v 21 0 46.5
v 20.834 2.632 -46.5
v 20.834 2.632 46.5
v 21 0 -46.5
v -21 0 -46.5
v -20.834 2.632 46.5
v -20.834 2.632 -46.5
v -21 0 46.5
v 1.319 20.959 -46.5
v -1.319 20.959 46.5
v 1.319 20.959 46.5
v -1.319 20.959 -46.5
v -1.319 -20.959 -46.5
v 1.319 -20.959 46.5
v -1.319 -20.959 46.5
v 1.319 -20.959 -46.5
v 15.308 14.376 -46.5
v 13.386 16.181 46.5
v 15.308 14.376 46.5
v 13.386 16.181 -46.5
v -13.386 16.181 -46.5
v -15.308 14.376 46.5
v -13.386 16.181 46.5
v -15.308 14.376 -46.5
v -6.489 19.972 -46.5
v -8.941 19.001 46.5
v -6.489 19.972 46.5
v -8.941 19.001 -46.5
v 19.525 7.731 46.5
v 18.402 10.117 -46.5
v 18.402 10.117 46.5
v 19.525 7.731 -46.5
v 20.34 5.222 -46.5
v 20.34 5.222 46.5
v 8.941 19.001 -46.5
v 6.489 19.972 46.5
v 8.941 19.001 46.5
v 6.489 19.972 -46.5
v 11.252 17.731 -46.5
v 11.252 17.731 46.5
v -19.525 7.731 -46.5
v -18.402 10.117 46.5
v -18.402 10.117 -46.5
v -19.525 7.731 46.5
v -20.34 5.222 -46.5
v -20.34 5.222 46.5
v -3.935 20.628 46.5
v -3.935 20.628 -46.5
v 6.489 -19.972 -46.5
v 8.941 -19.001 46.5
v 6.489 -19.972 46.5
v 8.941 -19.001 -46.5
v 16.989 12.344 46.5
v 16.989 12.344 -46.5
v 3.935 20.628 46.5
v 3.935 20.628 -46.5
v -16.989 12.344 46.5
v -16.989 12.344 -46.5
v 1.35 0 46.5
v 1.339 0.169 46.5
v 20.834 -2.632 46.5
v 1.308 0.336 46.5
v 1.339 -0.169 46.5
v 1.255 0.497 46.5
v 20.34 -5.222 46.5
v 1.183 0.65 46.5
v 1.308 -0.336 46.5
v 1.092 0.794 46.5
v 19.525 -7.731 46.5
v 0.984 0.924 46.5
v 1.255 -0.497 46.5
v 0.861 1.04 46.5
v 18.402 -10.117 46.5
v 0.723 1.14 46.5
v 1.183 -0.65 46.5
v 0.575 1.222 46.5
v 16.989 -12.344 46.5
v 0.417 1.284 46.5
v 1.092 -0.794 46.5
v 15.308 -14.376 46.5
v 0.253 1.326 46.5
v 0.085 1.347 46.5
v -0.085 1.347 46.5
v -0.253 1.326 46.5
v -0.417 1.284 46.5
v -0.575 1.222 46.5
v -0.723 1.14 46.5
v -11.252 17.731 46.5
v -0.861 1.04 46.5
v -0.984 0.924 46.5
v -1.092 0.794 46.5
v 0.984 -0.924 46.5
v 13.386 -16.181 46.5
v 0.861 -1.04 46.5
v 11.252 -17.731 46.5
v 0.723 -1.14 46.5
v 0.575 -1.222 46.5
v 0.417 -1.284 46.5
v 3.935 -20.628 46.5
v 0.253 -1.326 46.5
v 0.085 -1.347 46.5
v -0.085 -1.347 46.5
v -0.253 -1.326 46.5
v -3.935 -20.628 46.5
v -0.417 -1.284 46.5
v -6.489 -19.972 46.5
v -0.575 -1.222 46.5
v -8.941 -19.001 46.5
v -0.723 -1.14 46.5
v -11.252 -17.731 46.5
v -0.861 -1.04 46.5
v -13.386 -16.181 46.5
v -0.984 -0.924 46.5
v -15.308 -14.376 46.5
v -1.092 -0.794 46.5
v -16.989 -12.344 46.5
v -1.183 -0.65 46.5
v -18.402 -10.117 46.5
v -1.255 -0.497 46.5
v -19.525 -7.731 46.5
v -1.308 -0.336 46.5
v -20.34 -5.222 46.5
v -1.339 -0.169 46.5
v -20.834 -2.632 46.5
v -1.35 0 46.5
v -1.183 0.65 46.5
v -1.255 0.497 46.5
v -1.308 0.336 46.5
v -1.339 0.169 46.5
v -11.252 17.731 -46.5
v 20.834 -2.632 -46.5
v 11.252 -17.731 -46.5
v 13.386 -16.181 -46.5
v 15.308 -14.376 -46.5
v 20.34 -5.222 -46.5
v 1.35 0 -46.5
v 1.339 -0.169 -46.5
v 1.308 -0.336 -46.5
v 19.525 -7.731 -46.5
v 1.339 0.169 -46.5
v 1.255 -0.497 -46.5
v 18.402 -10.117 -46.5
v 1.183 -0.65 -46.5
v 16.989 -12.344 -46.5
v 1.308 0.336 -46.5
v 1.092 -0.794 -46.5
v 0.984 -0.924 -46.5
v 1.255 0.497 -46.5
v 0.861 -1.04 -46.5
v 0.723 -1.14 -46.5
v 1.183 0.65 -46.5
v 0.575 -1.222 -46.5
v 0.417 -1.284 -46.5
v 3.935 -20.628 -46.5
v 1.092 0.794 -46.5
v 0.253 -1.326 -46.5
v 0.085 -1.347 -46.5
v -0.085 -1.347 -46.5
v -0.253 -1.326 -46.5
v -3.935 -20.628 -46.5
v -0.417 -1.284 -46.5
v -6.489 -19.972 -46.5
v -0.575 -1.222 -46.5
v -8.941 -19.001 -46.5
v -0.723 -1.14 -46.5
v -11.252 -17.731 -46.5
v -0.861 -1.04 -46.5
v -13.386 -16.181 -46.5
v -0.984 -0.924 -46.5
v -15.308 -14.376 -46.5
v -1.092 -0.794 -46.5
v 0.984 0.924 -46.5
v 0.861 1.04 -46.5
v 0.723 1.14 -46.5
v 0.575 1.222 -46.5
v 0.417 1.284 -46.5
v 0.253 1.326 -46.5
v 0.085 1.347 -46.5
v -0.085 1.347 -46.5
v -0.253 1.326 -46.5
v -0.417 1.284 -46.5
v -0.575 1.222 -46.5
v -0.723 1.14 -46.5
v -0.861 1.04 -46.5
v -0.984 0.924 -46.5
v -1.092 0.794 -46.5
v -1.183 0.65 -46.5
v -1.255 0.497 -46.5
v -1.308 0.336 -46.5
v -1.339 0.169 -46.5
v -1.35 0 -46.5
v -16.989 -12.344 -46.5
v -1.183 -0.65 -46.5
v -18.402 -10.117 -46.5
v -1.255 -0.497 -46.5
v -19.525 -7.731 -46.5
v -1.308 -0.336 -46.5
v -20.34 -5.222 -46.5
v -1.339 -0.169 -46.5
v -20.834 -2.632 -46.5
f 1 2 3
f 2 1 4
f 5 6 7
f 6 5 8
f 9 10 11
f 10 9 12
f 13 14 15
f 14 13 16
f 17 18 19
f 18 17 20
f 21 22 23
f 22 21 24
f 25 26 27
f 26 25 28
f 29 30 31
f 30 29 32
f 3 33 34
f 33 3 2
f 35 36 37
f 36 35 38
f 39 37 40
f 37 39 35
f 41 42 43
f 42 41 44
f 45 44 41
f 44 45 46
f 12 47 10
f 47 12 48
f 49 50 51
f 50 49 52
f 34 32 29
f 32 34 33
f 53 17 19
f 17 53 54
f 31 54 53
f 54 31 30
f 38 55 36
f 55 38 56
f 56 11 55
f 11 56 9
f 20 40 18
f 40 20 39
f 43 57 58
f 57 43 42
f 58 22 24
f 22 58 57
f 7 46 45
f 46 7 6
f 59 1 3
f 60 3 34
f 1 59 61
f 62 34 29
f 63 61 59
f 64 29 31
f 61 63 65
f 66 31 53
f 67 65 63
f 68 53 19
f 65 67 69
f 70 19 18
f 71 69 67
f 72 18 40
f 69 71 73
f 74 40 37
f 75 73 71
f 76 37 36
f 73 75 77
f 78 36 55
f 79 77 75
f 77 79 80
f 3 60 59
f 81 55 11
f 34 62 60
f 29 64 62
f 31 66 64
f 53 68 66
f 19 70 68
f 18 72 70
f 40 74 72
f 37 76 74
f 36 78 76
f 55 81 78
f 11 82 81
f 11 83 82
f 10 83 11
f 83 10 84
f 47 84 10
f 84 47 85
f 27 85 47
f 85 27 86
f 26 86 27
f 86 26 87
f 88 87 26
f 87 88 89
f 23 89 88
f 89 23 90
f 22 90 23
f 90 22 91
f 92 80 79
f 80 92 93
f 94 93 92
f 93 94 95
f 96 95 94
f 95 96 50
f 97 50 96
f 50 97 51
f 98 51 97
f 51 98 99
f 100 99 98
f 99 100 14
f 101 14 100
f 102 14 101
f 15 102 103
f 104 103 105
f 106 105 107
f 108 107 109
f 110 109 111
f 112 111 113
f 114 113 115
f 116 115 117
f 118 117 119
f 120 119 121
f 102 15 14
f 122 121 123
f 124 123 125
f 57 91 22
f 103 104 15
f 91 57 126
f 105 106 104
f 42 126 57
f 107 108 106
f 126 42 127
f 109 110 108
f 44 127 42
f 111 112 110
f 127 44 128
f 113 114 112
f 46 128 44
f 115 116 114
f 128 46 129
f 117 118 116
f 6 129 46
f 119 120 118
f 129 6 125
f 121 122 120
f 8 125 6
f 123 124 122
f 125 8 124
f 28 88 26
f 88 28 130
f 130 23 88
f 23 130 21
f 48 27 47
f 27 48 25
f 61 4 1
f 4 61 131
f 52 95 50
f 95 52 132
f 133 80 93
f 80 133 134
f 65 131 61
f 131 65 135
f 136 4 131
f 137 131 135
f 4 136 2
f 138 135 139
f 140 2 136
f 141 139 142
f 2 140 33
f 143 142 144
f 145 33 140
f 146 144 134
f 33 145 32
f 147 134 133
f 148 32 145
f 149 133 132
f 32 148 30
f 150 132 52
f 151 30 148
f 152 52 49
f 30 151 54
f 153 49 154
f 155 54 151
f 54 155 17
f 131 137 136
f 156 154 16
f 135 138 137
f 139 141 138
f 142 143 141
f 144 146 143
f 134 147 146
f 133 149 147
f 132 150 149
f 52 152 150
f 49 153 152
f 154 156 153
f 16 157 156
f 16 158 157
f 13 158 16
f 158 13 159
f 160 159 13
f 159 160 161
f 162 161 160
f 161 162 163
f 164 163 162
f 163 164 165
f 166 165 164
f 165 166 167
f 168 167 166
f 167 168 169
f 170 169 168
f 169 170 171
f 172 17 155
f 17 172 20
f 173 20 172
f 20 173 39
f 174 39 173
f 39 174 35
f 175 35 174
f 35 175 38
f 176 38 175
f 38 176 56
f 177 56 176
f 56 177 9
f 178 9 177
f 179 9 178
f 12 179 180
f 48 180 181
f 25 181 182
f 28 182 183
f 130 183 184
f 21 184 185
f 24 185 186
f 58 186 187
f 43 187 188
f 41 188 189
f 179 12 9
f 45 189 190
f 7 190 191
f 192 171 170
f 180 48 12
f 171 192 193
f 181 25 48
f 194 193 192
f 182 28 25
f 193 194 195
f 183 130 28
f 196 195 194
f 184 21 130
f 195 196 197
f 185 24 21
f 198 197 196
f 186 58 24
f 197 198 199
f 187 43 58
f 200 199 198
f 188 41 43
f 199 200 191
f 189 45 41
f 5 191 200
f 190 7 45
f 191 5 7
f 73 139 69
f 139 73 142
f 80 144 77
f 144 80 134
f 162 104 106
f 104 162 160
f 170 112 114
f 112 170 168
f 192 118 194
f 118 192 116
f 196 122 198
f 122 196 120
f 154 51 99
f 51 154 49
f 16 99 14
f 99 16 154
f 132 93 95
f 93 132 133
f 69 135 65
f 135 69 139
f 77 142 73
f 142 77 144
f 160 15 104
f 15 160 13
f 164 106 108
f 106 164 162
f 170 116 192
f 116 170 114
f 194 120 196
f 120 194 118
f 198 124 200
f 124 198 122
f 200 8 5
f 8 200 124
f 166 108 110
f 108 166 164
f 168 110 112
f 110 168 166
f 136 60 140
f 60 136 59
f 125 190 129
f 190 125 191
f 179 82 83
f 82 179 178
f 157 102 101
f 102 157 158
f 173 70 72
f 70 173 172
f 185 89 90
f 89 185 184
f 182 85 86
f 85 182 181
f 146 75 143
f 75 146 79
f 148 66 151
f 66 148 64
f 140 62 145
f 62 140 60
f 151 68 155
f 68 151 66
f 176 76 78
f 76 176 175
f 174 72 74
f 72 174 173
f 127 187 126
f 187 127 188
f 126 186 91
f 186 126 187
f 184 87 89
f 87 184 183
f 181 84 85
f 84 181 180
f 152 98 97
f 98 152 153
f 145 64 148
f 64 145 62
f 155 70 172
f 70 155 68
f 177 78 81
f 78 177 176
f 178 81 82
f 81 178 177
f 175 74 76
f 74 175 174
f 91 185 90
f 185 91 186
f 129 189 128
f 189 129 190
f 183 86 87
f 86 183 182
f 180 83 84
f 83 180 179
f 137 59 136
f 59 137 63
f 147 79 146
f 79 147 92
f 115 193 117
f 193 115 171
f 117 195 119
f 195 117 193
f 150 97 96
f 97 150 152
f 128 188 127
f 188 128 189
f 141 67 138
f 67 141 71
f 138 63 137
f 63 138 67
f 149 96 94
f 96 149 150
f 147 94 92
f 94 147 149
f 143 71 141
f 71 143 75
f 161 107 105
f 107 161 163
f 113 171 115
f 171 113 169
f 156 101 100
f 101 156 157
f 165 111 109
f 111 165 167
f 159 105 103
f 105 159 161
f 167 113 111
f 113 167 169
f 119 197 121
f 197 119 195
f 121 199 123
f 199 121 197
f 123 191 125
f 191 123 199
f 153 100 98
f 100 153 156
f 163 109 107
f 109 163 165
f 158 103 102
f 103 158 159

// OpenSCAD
$fn = 50;


difference() {
	union() {
		translate(v = [0, 0, -46.5000000000]) {
			cylinder(h = 93, r = 21.0000000000);
		}
	}
	union() {
		translate(v = [0, 0, -100.0000000000]) {
			cylinder(h = 200, r = 1.3500000000);
		}
	}
}
